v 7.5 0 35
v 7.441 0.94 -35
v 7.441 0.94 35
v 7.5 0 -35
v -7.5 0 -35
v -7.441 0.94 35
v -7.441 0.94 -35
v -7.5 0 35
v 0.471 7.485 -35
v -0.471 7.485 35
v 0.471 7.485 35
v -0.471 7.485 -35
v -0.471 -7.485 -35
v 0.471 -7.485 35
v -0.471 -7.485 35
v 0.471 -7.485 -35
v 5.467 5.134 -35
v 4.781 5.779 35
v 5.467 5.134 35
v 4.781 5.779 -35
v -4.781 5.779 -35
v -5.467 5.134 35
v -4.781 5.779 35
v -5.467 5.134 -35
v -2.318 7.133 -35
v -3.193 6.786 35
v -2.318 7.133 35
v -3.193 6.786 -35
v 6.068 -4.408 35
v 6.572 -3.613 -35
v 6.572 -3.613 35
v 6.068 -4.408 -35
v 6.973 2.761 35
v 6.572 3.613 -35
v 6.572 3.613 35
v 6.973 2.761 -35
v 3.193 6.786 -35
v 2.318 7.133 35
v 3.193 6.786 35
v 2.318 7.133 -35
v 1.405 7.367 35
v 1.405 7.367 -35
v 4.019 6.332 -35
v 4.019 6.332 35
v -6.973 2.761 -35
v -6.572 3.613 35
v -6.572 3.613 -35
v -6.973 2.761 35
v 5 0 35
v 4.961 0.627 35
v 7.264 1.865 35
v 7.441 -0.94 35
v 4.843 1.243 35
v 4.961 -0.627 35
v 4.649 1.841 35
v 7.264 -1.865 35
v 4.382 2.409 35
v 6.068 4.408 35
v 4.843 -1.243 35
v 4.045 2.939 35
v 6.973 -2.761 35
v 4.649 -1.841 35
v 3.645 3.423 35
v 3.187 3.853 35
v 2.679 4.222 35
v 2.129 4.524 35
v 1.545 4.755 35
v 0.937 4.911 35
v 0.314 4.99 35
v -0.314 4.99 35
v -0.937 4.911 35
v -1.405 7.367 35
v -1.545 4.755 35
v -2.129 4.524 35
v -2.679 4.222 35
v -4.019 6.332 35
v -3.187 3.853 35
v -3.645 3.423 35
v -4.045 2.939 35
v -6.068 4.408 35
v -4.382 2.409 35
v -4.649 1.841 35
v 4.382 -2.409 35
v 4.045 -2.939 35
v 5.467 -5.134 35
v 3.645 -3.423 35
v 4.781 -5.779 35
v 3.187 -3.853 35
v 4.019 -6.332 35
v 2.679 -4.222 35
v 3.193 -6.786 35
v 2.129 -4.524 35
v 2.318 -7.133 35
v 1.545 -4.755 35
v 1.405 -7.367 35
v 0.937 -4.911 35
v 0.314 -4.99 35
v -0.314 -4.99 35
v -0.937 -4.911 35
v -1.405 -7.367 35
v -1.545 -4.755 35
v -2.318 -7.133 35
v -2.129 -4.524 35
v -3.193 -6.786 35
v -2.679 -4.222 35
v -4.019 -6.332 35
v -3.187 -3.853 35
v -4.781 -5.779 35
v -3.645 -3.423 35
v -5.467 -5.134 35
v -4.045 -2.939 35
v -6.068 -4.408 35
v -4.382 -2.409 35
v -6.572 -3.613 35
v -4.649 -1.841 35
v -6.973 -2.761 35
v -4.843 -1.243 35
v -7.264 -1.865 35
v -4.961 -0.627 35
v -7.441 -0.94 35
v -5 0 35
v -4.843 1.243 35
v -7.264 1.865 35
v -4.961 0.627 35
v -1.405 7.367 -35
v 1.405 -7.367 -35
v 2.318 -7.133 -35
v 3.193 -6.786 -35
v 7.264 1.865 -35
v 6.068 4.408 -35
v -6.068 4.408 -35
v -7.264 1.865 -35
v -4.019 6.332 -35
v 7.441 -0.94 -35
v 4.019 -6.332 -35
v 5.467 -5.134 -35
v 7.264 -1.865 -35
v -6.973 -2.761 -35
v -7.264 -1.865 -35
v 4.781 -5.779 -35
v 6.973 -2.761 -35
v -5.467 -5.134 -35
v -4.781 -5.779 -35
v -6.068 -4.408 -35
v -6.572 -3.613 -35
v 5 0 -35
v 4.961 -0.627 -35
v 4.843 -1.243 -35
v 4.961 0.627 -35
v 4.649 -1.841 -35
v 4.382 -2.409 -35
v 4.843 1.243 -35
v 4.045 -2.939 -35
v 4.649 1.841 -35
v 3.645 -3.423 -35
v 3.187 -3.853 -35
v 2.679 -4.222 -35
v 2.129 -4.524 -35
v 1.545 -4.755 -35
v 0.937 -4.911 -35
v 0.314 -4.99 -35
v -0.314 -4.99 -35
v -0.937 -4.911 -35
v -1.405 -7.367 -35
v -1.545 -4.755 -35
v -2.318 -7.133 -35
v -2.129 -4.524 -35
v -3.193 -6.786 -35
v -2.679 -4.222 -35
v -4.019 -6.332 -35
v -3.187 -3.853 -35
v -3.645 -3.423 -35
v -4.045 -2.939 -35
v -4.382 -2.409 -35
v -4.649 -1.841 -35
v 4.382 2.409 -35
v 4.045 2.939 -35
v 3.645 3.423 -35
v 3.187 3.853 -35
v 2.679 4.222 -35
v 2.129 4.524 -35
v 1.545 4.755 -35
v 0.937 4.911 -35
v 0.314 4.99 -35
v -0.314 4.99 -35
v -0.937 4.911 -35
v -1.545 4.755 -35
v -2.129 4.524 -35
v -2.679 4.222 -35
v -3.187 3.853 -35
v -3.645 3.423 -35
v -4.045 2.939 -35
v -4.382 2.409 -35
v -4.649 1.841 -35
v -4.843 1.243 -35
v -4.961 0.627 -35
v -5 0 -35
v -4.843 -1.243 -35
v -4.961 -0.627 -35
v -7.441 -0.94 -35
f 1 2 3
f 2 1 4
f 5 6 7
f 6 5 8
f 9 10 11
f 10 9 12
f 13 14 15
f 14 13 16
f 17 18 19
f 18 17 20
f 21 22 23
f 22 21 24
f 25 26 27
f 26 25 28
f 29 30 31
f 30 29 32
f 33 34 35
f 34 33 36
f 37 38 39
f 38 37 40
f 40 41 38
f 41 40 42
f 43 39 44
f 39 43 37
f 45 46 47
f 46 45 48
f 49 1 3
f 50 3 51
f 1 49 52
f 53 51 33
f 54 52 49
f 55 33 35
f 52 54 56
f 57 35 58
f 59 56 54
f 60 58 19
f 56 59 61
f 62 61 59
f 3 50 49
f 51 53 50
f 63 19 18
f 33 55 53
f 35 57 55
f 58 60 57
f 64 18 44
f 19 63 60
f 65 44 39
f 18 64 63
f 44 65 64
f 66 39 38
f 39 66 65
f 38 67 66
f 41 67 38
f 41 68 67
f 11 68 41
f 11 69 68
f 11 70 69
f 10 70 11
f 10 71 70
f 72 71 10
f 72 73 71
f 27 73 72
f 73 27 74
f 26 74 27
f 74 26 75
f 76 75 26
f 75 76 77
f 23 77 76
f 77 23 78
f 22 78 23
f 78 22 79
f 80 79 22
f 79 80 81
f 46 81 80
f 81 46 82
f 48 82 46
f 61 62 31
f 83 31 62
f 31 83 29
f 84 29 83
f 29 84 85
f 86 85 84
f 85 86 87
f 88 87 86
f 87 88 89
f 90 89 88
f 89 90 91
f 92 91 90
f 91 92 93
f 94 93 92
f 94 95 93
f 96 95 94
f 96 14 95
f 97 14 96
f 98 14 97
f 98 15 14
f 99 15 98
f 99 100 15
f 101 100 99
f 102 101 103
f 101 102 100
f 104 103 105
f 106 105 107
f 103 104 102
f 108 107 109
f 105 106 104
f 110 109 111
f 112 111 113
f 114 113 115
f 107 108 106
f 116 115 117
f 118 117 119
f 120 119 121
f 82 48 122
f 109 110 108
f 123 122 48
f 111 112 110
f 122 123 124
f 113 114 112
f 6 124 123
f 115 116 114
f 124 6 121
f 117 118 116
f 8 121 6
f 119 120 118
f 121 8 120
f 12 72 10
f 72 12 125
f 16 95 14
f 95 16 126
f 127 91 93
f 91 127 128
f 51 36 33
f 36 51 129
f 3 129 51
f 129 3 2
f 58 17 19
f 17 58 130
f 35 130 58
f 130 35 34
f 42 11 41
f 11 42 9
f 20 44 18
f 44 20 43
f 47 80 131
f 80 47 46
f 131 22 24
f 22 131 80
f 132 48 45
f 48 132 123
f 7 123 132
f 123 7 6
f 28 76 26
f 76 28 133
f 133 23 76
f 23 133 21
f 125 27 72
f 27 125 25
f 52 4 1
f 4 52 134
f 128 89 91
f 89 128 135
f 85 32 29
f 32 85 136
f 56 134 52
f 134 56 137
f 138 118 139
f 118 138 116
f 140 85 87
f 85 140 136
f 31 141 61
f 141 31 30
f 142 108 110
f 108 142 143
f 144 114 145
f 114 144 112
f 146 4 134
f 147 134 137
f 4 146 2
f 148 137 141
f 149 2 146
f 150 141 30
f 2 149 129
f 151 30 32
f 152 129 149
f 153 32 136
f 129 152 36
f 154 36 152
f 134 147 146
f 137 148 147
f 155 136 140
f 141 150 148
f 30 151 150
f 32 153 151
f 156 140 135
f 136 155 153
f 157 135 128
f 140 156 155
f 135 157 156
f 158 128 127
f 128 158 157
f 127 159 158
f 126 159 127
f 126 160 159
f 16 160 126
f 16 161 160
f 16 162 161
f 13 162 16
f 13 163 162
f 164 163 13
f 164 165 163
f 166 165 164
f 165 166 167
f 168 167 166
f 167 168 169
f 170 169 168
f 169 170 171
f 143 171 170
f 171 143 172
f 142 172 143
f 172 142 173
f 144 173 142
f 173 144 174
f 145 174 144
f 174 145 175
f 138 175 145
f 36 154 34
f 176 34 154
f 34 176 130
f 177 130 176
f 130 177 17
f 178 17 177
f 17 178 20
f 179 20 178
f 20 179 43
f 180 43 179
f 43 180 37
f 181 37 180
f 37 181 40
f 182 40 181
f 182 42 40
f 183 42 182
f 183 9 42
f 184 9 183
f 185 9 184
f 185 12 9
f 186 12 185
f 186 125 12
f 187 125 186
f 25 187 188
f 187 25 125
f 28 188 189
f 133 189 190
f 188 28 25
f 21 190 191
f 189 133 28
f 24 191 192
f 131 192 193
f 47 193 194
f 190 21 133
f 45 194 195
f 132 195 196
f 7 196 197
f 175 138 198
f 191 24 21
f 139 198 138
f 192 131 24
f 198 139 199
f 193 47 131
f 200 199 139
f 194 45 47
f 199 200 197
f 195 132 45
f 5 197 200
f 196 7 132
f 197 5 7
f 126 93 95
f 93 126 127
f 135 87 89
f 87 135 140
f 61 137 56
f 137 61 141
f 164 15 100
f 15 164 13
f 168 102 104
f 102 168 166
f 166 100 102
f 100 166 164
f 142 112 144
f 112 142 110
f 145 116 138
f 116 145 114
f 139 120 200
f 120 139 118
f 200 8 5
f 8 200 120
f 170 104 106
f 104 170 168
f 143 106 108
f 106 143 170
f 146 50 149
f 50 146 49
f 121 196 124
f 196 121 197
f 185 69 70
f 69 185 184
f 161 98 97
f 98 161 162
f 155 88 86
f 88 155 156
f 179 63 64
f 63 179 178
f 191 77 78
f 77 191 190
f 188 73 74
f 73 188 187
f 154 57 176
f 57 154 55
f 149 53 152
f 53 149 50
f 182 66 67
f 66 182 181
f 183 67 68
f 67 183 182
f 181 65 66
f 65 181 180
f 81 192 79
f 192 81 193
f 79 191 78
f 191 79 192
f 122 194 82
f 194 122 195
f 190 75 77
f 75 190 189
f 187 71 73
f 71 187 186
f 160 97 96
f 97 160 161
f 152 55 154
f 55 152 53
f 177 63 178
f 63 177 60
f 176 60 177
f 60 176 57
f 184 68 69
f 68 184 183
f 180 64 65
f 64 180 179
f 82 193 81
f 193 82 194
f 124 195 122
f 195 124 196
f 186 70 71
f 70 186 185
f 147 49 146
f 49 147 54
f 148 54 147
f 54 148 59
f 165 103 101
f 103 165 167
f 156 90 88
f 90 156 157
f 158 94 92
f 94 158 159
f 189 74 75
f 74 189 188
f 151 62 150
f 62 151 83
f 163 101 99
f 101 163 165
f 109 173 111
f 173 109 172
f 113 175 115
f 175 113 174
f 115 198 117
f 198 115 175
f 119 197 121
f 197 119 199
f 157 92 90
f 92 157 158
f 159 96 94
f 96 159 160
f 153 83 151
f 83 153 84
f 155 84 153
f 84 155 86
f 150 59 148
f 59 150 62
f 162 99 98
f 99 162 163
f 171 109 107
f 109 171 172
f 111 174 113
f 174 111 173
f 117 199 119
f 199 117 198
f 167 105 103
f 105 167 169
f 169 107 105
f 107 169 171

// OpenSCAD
$fn = 50;


difference() {
	union() {
		translate(v = [0, 0, -35.0000000000]) {
			cylinder(h = 70, r = 7.5000000000);
		}
	}
	union() {
		translate(v = [0, 0, -100.0000000000]) {
			cylinder(h = 200, r = 5.0000000000);
		}
	}
}
